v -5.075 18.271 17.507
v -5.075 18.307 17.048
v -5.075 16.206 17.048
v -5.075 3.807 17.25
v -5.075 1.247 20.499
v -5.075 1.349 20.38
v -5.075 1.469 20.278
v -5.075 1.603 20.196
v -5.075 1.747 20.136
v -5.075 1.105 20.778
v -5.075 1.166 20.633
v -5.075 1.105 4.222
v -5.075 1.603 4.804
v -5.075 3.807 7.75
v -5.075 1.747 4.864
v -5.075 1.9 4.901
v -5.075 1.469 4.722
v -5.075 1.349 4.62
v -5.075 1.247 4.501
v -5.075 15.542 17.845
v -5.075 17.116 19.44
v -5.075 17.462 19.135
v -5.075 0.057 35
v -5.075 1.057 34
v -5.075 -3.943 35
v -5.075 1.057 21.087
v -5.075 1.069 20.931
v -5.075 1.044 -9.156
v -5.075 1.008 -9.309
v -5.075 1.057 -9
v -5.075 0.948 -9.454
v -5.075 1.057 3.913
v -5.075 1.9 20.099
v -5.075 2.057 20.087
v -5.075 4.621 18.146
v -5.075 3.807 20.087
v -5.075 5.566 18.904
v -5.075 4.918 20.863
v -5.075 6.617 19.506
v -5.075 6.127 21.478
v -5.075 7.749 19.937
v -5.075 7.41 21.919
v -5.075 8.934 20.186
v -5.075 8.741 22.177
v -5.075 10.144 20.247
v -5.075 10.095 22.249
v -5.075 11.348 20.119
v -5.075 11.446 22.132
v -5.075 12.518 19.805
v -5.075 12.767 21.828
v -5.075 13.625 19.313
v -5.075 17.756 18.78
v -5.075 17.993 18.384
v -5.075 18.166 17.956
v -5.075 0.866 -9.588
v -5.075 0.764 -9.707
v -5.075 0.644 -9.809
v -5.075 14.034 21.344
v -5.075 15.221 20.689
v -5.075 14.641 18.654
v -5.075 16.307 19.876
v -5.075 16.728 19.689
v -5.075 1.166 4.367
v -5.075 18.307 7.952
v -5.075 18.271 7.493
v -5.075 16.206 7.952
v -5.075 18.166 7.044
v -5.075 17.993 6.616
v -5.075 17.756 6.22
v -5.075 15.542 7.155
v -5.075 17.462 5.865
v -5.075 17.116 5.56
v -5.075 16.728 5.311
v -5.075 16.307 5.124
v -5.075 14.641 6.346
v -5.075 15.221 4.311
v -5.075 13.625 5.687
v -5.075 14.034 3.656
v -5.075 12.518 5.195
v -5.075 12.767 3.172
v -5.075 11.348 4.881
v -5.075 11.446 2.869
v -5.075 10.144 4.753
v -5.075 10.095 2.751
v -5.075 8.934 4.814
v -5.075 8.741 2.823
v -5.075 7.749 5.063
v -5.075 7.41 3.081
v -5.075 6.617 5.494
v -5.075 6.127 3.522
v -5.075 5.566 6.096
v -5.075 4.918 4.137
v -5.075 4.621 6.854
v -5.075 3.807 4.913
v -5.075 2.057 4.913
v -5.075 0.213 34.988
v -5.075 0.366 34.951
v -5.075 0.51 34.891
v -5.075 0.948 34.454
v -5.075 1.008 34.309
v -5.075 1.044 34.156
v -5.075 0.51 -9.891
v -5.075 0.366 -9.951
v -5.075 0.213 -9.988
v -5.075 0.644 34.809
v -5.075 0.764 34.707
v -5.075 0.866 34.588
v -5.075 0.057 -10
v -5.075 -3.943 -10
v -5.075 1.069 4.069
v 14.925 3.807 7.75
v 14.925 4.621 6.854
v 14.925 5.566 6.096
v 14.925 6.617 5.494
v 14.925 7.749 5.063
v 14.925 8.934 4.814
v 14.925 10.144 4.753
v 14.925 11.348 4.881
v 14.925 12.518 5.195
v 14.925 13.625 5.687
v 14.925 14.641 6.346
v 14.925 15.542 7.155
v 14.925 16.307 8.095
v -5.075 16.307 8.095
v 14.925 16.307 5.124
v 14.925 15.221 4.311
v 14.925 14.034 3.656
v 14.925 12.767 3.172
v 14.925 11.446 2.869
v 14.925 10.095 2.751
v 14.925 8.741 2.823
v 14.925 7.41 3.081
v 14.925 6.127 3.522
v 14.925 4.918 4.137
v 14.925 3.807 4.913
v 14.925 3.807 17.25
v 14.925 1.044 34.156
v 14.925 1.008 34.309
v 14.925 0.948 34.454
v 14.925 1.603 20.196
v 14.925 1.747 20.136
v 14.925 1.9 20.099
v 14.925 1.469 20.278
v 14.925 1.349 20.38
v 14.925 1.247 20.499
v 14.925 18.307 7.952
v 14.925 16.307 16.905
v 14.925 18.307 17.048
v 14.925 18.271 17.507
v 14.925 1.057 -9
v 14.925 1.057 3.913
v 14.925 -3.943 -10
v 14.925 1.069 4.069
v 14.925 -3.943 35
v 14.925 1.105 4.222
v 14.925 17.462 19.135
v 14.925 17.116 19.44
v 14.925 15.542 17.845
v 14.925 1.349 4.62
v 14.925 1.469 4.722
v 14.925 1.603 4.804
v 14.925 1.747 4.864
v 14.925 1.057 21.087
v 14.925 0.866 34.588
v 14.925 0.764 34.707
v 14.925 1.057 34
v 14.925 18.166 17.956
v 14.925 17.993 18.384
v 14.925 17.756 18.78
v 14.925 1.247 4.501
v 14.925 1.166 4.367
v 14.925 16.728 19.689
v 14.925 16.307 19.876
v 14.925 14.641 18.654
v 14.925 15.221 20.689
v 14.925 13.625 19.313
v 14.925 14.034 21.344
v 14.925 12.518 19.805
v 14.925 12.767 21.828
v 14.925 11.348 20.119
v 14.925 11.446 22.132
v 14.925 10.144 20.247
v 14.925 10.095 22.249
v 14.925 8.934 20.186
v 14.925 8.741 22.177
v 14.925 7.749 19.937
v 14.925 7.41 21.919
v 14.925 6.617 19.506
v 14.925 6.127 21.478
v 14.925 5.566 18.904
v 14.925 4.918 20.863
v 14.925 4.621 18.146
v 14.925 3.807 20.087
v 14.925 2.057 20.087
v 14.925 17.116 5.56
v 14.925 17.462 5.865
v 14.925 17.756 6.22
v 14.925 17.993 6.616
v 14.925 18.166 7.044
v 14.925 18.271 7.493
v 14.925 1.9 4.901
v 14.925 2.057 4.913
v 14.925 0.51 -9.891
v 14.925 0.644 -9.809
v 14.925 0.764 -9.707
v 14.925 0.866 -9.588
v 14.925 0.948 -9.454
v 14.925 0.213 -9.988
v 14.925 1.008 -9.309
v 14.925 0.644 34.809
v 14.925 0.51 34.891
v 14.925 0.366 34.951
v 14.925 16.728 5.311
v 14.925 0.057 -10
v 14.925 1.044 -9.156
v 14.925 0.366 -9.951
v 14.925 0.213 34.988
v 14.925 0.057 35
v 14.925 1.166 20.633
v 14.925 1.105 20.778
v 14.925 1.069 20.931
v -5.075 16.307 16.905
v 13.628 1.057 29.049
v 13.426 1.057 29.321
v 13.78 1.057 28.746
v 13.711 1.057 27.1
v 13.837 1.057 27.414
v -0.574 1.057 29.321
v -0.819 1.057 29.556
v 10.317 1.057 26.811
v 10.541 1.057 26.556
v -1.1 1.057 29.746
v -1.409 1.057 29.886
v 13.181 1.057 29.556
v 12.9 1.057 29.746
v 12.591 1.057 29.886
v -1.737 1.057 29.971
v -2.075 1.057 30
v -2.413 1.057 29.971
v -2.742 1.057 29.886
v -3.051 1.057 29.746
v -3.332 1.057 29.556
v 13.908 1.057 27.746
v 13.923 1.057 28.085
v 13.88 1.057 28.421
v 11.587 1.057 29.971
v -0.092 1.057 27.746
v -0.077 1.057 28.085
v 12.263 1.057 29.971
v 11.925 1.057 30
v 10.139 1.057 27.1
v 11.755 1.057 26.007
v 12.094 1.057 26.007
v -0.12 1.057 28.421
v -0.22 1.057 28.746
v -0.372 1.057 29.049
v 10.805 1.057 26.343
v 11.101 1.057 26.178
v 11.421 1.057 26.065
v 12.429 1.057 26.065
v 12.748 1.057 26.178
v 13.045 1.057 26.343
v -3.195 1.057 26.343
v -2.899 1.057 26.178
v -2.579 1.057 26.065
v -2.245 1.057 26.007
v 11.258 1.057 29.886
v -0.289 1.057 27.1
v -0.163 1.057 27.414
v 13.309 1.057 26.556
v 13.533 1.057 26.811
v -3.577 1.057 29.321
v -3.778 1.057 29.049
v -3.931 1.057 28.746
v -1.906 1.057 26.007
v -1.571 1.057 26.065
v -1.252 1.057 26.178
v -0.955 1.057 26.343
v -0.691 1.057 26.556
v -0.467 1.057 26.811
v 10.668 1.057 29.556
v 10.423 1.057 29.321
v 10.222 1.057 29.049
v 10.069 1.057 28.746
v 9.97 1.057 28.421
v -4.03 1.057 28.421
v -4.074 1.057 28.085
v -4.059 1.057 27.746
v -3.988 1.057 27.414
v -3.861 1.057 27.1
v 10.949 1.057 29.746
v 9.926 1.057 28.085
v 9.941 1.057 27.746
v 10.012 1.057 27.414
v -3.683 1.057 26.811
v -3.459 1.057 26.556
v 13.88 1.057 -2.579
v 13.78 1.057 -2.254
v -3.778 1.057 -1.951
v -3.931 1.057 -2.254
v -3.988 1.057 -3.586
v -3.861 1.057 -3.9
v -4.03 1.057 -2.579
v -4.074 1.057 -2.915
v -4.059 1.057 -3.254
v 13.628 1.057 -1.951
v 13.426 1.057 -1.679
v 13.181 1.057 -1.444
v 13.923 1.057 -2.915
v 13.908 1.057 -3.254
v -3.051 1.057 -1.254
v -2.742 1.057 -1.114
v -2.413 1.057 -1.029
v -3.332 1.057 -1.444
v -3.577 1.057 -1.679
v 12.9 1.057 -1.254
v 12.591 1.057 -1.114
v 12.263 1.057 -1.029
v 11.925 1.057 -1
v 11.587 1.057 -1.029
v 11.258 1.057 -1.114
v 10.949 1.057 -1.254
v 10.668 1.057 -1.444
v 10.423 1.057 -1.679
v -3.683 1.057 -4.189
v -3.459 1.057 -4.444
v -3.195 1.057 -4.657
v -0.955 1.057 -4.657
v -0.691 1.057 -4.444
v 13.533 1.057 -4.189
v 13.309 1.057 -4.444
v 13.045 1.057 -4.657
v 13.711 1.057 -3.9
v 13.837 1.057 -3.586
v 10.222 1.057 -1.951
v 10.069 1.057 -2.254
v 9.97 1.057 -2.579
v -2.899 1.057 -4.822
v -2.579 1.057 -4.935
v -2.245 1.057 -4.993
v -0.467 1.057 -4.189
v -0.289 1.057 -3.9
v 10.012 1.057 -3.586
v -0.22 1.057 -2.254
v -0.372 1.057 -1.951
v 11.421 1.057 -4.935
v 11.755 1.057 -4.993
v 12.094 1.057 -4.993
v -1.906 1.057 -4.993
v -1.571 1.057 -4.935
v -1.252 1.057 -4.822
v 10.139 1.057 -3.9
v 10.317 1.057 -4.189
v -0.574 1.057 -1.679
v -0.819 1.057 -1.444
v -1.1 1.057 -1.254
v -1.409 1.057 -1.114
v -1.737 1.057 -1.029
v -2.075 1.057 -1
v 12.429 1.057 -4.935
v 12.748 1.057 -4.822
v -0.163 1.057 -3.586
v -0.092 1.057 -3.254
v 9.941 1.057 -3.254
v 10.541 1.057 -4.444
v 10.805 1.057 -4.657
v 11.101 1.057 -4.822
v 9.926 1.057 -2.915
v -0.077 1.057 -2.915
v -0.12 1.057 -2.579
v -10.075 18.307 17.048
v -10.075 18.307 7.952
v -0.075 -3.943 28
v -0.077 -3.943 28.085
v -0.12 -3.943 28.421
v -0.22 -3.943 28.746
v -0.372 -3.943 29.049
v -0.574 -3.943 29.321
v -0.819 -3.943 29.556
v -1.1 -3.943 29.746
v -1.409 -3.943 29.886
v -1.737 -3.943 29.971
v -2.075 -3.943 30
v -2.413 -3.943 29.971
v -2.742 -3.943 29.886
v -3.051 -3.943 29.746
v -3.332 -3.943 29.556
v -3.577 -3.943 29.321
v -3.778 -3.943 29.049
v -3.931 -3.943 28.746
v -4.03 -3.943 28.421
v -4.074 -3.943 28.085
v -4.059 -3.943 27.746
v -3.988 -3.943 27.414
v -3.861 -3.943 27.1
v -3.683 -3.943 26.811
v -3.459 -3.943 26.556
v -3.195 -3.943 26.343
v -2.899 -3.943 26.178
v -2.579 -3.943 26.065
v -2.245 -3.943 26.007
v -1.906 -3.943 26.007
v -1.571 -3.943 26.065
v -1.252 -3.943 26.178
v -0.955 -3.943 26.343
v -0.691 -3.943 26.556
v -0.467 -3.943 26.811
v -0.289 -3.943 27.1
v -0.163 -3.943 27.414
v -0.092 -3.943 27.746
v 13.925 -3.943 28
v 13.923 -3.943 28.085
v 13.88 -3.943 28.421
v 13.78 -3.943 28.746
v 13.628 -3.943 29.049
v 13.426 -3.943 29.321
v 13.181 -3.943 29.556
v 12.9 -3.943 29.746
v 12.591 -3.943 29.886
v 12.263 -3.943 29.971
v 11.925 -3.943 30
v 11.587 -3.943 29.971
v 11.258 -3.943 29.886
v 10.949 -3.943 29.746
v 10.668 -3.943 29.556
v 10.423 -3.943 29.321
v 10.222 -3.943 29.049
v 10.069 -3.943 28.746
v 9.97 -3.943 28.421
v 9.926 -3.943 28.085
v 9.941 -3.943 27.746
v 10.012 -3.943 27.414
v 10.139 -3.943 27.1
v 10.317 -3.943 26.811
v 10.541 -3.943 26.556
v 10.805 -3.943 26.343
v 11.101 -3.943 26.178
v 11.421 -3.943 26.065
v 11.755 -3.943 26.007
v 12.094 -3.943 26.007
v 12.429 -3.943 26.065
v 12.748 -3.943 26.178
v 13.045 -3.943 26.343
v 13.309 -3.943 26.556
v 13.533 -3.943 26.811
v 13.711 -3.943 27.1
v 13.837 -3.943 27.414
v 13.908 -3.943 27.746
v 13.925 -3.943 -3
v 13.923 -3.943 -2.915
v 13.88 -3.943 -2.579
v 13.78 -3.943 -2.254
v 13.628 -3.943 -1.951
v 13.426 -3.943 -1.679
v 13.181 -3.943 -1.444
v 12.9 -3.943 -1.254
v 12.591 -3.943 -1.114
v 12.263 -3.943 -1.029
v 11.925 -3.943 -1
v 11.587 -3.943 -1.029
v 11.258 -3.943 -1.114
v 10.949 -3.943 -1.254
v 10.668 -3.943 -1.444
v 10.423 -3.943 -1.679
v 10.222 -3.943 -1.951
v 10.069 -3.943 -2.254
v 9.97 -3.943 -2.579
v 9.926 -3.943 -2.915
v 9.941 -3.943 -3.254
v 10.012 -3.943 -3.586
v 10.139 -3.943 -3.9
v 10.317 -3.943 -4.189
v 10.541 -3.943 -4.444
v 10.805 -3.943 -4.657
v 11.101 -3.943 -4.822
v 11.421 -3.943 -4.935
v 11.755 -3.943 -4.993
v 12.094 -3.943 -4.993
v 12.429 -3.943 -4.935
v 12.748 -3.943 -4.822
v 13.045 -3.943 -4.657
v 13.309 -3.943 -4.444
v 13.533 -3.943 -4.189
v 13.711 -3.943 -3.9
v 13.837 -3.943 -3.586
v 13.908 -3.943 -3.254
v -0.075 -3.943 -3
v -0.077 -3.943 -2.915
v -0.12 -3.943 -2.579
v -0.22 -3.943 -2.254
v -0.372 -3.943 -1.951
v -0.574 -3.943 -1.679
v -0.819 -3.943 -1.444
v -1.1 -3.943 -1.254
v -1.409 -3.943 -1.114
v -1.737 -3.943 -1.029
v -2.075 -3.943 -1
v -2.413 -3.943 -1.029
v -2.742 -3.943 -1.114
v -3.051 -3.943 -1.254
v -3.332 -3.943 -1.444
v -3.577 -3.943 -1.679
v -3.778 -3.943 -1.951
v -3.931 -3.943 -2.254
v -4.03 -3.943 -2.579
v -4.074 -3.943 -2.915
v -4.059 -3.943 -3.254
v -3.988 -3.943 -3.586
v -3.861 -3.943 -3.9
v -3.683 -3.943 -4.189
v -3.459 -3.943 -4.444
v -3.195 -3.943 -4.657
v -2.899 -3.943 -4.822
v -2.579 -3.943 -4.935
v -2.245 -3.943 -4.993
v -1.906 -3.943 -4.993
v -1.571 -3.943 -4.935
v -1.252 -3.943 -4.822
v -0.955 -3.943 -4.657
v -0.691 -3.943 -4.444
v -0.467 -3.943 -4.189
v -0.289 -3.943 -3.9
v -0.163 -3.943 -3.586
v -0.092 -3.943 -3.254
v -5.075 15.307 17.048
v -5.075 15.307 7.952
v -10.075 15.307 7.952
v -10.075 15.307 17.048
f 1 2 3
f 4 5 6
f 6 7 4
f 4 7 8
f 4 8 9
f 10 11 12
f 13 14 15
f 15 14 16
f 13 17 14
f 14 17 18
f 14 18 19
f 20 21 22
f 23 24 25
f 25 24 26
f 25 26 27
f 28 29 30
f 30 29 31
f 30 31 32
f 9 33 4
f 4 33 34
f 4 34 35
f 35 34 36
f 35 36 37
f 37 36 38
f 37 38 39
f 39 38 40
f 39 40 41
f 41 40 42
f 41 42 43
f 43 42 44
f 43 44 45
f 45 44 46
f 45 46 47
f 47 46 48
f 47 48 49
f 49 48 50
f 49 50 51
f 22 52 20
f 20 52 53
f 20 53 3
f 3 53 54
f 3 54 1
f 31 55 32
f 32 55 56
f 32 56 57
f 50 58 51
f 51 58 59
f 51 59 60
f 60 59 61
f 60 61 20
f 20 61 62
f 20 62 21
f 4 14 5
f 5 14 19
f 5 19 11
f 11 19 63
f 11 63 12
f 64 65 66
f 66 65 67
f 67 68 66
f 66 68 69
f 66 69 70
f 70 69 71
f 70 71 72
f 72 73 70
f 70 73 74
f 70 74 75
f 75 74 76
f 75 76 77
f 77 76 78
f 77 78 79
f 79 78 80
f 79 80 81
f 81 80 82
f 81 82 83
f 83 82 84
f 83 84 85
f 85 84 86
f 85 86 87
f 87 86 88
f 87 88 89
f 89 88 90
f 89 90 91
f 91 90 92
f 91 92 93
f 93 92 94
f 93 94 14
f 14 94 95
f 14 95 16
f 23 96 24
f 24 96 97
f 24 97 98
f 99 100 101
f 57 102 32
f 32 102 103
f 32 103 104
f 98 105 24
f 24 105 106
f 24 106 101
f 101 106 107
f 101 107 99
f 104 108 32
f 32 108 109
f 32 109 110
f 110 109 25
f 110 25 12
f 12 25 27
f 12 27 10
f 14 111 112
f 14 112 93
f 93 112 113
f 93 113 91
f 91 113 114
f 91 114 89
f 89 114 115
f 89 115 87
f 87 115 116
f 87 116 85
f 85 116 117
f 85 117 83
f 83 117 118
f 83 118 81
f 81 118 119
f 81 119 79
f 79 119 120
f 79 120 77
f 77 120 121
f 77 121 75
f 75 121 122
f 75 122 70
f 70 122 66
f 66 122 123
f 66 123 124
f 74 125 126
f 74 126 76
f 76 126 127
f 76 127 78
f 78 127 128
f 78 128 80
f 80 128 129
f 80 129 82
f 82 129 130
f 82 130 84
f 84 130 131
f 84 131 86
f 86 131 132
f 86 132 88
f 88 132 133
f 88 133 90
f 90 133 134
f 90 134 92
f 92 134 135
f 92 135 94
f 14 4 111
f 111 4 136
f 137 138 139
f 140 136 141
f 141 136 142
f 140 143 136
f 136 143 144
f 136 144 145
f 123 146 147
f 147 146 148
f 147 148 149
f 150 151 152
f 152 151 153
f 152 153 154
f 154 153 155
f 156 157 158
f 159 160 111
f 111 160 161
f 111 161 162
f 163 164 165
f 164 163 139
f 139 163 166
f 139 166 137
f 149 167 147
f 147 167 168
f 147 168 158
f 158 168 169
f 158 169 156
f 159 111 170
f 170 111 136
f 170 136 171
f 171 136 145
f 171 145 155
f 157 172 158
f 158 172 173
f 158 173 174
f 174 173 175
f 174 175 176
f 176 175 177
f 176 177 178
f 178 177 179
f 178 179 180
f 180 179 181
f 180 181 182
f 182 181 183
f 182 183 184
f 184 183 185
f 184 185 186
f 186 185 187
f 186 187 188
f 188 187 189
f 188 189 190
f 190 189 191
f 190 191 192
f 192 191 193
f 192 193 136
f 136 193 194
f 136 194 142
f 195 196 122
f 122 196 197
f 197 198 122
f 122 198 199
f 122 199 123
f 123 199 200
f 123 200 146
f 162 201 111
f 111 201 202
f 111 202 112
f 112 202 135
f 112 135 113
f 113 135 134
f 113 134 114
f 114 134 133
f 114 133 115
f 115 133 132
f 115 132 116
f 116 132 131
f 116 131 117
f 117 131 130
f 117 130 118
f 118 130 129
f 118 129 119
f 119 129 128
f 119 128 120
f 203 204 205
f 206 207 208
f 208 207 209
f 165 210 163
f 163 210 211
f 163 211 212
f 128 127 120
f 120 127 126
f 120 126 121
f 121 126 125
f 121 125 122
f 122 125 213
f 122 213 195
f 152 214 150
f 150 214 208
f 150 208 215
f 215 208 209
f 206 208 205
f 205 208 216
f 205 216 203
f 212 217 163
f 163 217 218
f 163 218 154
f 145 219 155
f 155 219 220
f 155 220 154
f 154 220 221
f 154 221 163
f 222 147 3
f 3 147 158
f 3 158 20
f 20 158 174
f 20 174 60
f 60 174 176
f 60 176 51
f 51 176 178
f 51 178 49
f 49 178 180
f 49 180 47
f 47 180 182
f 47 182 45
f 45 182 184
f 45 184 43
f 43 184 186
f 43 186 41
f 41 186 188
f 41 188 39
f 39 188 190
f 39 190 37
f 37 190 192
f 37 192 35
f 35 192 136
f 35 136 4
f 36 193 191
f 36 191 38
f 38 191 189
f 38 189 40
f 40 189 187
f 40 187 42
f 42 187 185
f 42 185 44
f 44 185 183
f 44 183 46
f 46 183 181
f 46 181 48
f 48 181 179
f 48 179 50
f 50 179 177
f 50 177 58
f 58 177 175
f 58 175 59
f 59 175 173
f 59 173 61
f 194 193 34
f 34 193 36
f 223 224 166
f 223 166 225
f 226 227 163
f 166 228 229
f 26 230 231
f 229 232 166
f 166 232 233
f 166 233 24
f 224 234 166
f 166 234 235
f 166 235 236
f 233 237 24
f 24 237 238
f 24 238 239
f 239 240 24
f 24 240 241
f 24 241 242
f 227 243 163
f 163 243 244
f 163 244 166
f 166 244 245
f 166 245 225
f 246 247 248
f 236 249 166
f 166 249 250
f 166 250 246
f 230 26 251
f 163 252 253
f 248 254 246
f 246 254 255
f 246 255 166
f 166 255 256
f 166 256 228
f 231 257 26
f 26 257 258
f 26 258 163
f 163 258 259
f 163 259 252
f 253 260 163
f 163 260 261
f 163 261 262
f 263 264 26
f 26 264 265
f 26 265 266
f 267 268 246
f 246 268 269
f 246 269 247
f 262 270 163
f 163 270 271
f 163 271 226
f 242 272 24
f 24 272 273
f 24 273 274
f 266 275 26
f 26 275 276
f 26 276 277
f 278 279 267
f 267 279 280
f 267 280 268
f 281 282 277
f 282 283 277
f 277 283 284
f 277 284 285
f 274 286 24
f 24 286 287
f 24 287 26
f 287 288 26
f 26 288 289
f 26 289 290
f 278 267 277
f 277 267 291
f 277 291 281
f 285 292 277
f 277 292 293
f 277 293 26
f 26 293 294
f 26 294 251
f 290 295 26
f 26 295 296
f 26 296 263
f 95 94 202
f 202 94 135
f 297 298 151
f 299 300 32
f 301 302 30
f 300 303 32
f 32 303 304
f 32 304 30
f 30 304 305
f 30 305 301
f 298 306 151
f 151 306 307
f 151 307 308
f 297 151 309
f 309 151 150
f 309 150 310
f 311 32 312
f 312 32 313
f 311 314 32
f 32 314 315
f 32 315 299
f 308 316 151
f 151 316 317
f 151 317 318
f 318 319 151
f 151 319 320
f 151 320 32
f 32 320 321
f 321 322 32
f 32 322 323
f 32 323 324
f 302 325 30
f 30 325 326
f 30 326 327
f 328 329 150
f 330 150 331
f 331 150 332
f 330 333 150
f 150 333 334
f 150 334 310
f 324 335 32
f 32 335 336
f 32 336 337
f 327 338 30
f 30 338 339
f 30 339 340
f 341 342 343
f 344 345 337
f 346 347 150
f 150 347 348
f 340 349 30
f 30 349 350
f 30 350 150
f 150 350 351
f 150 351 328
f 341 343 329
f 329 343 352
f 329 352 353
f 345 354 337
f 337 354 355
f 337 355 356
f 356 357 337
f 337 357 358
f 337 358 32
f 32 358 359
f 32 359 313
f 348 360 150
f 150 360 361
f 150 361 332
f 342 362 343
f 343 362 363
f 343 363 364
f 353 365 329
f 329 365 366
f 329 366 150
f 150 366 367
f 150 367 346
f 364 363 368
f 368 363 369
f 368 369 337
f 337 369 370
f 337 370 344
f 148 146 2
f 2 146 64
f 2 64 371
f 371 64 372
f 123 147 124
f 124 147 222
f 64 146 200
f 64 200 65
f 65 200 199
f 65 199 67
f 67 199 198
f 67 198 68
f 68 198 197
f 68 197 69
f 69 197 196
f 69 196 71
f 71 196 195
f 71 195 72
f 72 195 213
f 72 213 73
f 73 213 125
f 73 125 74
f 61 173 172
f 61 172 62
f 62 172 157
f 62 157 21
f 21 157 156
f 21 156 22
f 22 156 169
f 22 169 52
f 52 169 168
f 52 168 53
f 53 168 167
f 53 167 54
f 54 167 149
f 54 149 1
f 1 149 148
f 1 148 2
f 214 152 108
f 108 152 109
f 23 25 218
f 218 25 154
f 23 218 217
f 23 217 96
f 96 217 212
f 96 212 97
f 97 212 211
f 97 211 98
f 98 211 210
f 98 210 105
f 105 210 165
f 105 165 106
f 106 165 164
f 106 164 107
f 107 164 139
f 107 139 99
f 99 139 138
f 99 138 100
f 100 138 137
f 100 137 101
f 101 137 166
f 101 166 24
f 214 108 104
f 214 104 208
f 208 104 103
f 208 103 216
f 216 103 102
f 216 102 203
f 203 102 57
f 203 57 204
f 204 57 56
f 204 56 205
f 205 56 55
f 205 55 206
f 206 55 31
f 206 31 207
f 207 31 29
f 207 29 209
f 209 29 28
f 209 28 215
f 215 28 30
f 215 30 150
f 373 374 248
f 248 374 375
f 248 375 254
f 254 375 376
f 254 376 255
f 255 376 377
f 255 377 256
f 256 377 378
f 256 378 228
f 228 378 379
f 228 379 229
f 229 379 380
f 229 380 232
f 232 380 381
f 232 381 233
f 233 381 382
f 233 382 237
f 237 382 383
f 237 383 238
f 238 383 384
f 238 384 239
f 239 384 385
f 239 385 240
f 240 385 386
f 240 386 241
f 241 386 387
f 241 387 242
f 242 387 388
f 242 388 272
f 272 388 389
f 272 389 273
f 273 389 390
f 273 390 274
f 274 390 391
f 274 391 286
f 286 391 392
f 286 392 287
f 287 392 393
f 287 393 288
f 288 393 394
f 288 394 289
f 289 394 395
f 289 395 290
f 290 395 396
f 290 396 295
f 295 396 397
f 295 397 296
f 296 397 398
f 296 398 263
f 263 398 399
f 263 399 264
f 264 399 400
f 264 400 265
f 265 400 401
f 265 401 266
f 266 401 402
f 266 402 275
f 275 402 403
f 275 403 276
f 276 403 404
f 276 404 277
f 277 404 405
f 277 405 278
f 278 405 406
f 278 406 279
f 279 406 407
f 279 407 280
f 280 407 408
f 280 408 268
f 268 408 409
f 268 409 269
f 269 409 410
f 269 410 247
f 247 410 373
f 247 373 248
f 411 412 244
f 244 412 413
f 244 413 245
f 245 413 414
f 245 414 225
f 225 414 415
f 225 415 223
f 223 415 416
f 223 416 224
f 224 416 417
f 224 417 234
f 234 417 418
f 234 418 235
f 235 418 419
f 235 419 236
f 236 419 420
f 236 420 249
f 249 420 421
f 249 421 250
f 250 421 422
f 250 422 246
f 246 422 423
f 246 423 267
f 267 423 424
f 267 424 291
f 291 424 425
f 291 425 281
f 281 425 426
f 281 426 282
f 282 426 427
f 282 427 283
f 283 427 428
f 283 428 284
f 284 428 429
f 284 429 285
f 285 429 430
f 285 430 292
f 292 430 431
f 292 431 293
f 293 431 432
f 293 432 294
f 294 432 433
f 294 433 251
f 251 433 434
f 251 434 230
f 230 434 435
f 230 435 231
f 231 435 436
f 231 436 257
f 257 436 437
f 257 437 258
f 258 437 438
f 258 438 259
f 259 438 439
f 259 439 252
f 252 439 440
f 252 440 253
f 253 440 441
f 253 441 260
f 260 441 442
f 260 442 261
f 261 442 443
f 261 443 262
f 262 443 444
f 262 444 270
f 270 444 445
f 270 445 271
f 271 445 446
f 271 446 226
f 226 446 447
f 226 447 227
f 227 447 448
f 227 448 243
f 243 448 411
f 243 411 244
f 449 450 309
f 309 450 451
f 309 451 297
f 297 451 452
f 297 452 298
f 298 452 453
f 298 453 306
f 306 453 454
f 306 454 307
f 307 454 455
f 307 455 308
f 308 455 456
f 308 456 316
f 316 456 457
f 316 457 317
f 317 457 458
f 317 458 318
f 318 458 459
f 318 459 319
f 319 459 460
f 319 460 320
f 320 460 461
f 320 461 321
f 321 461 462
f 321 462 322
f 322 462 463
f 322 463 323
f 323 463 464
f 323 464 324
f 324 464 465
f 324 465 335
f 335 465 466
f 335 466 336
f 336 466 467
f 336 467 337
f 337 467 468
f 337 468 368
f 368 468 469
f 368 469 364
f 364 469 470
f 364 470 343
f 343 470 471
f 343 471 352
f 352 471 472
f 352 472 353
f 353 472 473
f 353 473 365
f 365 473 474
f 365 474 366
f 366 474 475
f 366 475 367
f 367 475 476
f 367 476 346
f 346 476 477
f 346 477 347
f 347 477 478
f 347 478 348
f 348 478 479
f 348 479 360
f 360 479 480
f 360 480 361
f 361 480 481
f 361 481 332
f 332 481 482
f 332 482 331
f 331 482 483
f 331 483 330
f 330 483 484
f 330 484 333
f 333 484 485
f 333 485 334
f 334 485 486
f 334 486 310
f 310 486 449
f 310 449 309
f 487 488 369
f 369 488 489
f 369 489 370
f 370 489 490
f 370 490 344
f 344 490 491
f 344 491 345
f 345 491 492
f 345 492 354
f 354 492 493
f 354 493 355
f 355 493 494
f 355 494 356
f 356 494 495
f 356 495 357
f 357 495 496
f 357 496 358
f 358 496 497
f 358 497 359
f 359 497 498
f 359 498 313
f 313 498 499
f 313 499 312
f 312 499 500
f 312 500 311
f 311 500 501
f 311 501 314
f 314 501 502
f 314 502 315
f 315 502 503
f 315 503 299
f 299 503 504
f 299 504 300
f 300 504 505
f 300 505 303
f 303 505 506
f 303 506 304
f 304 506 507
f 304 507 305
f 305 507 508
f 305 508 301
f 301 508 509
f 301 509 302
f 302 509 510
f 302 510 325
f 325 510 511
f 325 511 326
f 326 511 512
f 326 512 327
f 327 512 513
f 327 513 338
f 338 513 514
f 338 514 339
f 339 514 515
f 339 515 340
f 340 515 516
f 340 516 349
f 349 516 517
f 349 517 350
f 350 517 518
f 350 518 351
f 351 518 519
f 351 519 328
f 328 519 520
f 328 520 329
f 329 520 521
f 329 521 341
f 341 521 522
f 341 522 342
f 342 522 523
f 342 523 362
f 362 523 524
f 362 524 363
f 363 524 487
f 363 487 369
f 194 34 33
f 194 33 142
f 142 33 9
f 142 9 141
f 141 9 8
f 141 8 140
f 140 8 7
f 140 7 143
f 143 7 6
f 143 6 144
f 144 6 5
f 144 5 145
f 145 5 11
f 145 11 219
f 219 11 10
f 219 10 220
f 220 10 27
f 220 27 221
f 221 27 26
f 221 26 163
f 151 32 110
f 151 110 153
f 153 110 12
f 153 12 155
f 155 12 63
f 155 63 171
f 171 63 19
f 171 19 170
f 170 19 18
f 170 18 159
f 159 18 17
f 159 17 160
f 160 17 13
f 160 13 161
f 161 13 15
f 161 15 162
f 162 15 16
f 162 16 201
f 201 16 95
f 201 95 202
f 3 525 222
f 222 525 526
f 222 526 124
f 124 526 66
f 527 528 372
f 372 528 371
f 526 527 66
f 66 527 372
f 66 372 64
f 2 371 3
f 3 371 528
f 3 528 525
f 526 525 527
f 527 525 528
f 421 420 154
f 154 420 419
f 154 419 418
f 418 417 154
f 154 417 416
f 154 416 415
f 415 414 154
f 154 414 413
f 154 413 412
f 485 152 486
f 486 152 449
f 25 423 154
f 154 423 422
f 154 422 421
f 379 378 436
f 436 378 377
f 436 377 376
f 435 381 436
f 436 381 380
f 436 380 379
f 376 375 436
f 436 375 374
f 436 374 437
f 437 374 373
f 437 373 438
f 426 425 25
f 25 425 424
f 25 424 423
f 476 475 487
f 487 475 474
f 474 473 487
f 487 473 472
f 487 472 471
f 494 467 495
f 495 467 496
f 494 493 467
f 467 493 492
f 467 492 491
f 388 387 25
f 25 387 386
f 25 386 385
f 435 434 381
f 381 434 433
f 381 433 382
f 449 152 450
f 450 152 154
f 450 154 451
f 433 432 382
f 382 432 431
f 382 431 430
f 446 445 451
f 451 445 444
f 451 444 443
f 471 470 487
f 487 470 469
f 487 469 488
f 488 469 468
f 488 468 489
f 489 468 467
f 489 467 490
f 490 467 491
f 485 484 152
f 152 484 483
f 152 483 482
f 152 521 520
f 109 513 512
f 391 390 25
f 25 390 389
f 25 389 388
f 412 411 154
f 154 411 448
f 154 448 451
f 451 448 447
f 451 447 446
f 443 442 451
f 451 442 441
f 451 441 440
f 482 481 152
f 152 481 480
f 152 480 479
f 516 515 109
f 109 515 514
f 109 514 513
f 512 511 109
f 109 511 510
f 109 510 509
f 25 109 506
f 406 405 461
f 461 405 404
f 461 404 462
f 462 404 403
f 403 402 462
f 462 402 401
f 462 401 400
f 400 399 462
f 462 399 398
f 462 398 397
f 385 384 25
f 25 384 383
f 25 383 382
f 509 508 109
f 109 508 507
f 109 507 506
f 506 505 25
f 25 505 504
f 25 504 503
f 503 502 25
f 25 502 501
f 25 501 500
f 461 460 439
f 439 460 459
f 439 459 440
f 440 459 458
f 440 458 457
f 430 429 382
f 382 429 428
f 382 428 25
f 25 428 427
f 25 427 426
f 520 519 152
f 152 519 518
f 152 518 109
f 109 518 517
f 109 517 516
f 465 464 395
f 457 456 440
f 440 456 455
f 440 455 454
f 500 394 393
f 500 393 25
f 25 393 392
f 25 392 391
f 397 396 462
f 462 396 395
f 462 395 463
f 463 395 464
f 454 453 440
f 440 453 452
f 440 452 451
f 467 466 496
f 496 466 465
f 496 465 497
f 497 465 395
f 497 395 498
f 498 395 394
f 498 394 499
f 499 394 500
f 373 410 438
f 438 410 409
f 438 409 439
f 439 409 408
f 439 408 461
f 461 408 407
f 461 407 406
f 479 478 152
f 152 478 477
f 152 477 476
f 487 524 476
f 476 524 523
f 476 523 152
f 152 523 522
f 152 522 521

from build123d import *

# Parameters (mm, degrees)
SKETCH1_W           = 20
SKETCH1_H           = 4.75
BOSS_EXTRUDE1_DEPTH = 25
BOSS_EXTRUDE3_DEPTH = 20
SKETCH5_W           = 4.913004547
SKETCH5_H           = 2.75
CUT_EXTRUDE1_DEPTH  = 38.5807331
SKETCH9_W           = 20.464128198
SKETCH9_H           = 5.182266339
CUT_EXTRUDE3_DEPTH  = 38.5807331
SKETCH10_W          = 14.752031578
SKETCH10_H          = 2
BOSS_EXTRUDE4_DEPTH = 20
FILLET1_R           = 3
FILLET2_R           = 3
SKETCH11_W          = 20
SKETCH11_H          = 2
BOSS_EXTRUDE5_DEPTH = 10
SKETCH12_W          = 20
SKETCH12_H          = 2
BOSS_EXTRUDE6_DEPTH = 10
FILLET5_R           = 1
FILLET6_R           = 1
SKETCH13_R          = 2
CUT_EXTRUDE4_DEPTH  = 42.776882393
FILLET7_R           = 1
FILLET8_R           = 1
SKETCH14_W          = 7
SKETCH14_H          = 2
BOSS_EXTRUDE7_DEPTH = 5
SKETCH15_W          = 5
SKETCH15_H          = 9.09517733
BOSS_EXTRUDE8_DEPTH = 3
SKETCH16_W          = 20
SKETCH16_H          = 45
SKETCH16_R          = 2
BOSS_EXTRUDE9_DEPTH = 3


with BuildPart() as part:
    # Sketch1 → Boss-Extrude1 (new body)
    with BuildSketch(Plane.XY):
        with Locations((4.924657534, 1.431506849)):
            Rectangle(SKETCH1_W, SKETCH1_H)
    extrude(amount=BOSS_EXTRUDE1_DEPTH)

    # Sketch2 → Boss-Extrude3 (add)
    with BuildSketch(Plane(origin=(14.924657534, 0, 0), x_dir=(0, 0, -1), z_dir=(1, 0, 0))):
        with BuildLine():
            Line((-7.75, 3.806506849), (-4.913004547, 3.806506849))
            ThreePointArc((-4.913004547, 3.806506849), (-12.5, 19.680231206), (-20.086995453, 3.806506849))
            Line((-20.086995453, 3.806506849), (-17.25, 3.806506849))
            ThreePointArc((-17.25, 3.806506849), (-12.5, 17.680231206), (-7.75, 3.806506849))
        make_face()
    extrude(amount=-BOSS_EXTRUDE3_DEPTH)

    # Sketch5 → Cut-Extrude1 (cut, through all)
    with BuildSketch(Plane(origin=(14.924657534, 0, 0), x_dir=(0, 0, -1), z_dir=(1, 0, 0))):
        with Locations((-22.543497727, 2.431506849)):
            Rectangle(SKETCH5_W, SKETCH5_H)
        with Locations((-2.456502273, 2.431506849)):
            Rectangle(SKETCH5_W, SKETCH5_H)
    extrude(amount=-CUT_EXTRUDE1_DEPTH, mode=Mode.SUBTRACT)

    # Sketch9 → Cut-Extrude3 (cut, through all)
    with BuildSketch(Plane(origin=(14.924657534, 0, 0), x_dir=(0, 0, -1), z_dir=(1, 0, 0))):
        with Locations((-12.097906115, 18.897640018)):
            Rectangle(SKETCH9_W, SKETCH9_H)
    extrude(amount=-CUT_EXTRUDE3_DEPTH, mode=Mode.SUBTRACT)

    # Sketch10 → Boss-Extrude4 (add)
    with BuildSketch(Plane(origin=(14.924657534, 0, 0), x_dir=(0, 0, -1), z_dir=(1, 0, 0))):
        with Locations((-12.5, 17.306506849)):
            Rectangle(SKETCH10_W, SKETCH10_H)
    extrude(amount=-BOSS_EXTRUDE4_DEPTH)

    # Fillet1
    # the kernel refuses this fillet: 3 mm, written as the material it takes off along each edge
    with BuildSketch(Plane(origin=(21.995725346, 18.306506849, 5.123984211), x_dir=(0, -1, 0), z_dir=(-1, 0, 0))) as fillet1_piece_1:
        with BuildLine():
            CenterArc((3, 2.828427125), FILLET1_R, 180, 70.528779366)
            Line((0, 2.828427125), (-0.06, 2.828427125))
            Line((-0.06, 2.828427125), (-0.06, 0))
            Line((-0.06, 0), (0, -0.06))
            ThreePointArc((0, -0.06), (1, -0.06), (1.98, -0.056568542))
            Line((1.98, -0.056568542), (2, 0))
        make_face()
    extrude(amount=34.142135624, mode=Mode.SUBTRACT)

    # Fillet2
    # the kernel refuses this fillet: 3 mm, written as the material it takes off along each edge
    with BuildSketch(Plane(origin=(21.995725346, 18.306506849, 19.876015789), x_dir=(0, -1, 0), z_dir=(-1, 0, 0))) as fillet2_piece_1:
        with BuildLine():
            CenterArc((3, -2.828427125), FILLET2_R, 109.471220634, 70.528779366)
            Line((0, -2.828427125), (-0.06, -2.828427125))
            Line((-0.06, -2.828427125), (-0.06, 0))
            Line((-0.06, 0), (0, 0.06))
            ThreePointArc((0, 0.06), (1, 0.06), (1.98, 0.056568542))
            Line((1.98, 0.056568542), (2, 0))
        make_face()
    extrude(amount=34.142135624, mode=Mode.SUBTRACT)

    # Sketch11 → Boss-Extrude5 (add)
    with BuildSketch(Plane(origin=(0, 0, 0), x_dir=(-1, 0, 0), z_dir=(0, 0, -1))):
        with Locations((-4.924657534, 0.056506849)):
            Rectangle(SKETCH11_W, SKETCH11_H)
    extrude(amount=BOSS_EXTRUDE5_DEPTH)

    # Sketch12 → Boss-Extrude6 (add)
    with BuildSketch(Plane.XY.offset(25)):
        with Locations((4.924657534, 0.056506849)):
            Rectangle(SKETCH12_W, SKETCH12_H)
    extrude(amount=BOSS_EXTRUDE6_DEPTH)

    # Fillet5
    fillet5_edges = [part.edges().sort_by_distance(p)[0] for p in [
        (4.924657534, 1.056506849, 35),
    ]]
    fillet(fillet5_edges, radius=FILLET5_R)

    # Fillet6
    fillet6_edges = [part.edges().sort_by_distance(p)[0] for p in [
        (4.924657534, 1.056506849, -10),
    ]]
    fillet(fillet6_edges, radius=FILLET6_R)

    # Sketch13 → Cut-Extrude4 (cut, through all)
    with BuildSketch(Plane(origin=(0, 1.056506849, 0), x_dir=(1, 0, 0), z_dir=(0, 1, 0))):
        with Locations(Location((-2.075342466, -28, 0), (0, 0, 270))):
            Circle(SKETCH13_R)
        with Locations(Location((11.924657534, -28, 0), (0, 0, 270))):
            Circle(SKETCH13_R)
        with Locations(Location((11.924657534, 3, 0), (0, 0, 270))):
            Circle(SKETCH13_R)
        with Locations(Location((-2.075342466, 3, 0), (0, 0, 270))):
            Circle(SKETCH13_R)
    extrude(amount=-CUT_EXTRUDE4_DEPTH, mode=Mode.SUBTRACT)

    # Fillet7
    fillet7_edges = [part.edges().sort_by_distance(p)[0] for p in [
        (4.924657534, 1.056506849, 20.086995453),
    ]]
    fillet(fillet7_edges, radius=FILLET7_R)

    # Fillet8
    fillet8_edges = [part.edges().sort_by_distance(p)[0] for p in [
        (4.924657534, 1.056506849, 4.913004547),
    ]]
    fillet(fillet8_edges, radius=FILLET8_R)



with BuildPart() as body_2:
    # Sketch14 → Boss-Extrude7 (new body)
    with BuildSketch(Plane.ZY.offset(5.075342466)):
        with Locations((12.767411335, 17.306506849)):
            Rectangle(SKETCH14_W, SKETCH14_H)
    extrude(amount=BOSS_EXTRUDE7_DEPTH)


with BuildPart() as part_1:
    add(part.part)

    add(body_2.part)  # Boss-Extrude8 merges body 2
    # Sketch15 → Boss-Extrude8 (add)
    with BuildSketch(Plane.XZ.offset(-18.306506849)):
        with Locations((-7.575342466, 12.5)):
            Rectangle(SKETCH15_W, SKETCH15_H)
    extrude(amount=BOSS_EXTRUDE8_DEPTH)

    # Sketch16 → Boss-Extrude9 (add)
    with BuildSketch(Plane.XZ.offset(0.943493151)):
        with Locations((4.924657534, 12.5)):
            Rectangle(SKETCH16_W, SKETCH16_H)
        with Locations(Location((11.924657534, -3, 0), (0, 0, 90))):
            Circle(SKETCH16_R, mode=Mode.SUBTRACT)
        with Locations(Location((11.924657534, 28, 0), (0, 0, 90))):
            Circle(SKETCH16_R, mode=Mode.SUBTRACT)
        with Locations(Location((-2.075342466, 28, 0), (0, 0, 90))):
            Circle(SKETCH16_R, mode=Mode.SUBTRACT)
        with Locations(Location((-2.075342466, -3, 0), (0, 0, 90))):
            Circle(SKETCH16_R, mode=Mode.SUBTRACT)
    extrude(amount=BOSS_EXTRUDE9_DEPTH)


solid = part_1.part
